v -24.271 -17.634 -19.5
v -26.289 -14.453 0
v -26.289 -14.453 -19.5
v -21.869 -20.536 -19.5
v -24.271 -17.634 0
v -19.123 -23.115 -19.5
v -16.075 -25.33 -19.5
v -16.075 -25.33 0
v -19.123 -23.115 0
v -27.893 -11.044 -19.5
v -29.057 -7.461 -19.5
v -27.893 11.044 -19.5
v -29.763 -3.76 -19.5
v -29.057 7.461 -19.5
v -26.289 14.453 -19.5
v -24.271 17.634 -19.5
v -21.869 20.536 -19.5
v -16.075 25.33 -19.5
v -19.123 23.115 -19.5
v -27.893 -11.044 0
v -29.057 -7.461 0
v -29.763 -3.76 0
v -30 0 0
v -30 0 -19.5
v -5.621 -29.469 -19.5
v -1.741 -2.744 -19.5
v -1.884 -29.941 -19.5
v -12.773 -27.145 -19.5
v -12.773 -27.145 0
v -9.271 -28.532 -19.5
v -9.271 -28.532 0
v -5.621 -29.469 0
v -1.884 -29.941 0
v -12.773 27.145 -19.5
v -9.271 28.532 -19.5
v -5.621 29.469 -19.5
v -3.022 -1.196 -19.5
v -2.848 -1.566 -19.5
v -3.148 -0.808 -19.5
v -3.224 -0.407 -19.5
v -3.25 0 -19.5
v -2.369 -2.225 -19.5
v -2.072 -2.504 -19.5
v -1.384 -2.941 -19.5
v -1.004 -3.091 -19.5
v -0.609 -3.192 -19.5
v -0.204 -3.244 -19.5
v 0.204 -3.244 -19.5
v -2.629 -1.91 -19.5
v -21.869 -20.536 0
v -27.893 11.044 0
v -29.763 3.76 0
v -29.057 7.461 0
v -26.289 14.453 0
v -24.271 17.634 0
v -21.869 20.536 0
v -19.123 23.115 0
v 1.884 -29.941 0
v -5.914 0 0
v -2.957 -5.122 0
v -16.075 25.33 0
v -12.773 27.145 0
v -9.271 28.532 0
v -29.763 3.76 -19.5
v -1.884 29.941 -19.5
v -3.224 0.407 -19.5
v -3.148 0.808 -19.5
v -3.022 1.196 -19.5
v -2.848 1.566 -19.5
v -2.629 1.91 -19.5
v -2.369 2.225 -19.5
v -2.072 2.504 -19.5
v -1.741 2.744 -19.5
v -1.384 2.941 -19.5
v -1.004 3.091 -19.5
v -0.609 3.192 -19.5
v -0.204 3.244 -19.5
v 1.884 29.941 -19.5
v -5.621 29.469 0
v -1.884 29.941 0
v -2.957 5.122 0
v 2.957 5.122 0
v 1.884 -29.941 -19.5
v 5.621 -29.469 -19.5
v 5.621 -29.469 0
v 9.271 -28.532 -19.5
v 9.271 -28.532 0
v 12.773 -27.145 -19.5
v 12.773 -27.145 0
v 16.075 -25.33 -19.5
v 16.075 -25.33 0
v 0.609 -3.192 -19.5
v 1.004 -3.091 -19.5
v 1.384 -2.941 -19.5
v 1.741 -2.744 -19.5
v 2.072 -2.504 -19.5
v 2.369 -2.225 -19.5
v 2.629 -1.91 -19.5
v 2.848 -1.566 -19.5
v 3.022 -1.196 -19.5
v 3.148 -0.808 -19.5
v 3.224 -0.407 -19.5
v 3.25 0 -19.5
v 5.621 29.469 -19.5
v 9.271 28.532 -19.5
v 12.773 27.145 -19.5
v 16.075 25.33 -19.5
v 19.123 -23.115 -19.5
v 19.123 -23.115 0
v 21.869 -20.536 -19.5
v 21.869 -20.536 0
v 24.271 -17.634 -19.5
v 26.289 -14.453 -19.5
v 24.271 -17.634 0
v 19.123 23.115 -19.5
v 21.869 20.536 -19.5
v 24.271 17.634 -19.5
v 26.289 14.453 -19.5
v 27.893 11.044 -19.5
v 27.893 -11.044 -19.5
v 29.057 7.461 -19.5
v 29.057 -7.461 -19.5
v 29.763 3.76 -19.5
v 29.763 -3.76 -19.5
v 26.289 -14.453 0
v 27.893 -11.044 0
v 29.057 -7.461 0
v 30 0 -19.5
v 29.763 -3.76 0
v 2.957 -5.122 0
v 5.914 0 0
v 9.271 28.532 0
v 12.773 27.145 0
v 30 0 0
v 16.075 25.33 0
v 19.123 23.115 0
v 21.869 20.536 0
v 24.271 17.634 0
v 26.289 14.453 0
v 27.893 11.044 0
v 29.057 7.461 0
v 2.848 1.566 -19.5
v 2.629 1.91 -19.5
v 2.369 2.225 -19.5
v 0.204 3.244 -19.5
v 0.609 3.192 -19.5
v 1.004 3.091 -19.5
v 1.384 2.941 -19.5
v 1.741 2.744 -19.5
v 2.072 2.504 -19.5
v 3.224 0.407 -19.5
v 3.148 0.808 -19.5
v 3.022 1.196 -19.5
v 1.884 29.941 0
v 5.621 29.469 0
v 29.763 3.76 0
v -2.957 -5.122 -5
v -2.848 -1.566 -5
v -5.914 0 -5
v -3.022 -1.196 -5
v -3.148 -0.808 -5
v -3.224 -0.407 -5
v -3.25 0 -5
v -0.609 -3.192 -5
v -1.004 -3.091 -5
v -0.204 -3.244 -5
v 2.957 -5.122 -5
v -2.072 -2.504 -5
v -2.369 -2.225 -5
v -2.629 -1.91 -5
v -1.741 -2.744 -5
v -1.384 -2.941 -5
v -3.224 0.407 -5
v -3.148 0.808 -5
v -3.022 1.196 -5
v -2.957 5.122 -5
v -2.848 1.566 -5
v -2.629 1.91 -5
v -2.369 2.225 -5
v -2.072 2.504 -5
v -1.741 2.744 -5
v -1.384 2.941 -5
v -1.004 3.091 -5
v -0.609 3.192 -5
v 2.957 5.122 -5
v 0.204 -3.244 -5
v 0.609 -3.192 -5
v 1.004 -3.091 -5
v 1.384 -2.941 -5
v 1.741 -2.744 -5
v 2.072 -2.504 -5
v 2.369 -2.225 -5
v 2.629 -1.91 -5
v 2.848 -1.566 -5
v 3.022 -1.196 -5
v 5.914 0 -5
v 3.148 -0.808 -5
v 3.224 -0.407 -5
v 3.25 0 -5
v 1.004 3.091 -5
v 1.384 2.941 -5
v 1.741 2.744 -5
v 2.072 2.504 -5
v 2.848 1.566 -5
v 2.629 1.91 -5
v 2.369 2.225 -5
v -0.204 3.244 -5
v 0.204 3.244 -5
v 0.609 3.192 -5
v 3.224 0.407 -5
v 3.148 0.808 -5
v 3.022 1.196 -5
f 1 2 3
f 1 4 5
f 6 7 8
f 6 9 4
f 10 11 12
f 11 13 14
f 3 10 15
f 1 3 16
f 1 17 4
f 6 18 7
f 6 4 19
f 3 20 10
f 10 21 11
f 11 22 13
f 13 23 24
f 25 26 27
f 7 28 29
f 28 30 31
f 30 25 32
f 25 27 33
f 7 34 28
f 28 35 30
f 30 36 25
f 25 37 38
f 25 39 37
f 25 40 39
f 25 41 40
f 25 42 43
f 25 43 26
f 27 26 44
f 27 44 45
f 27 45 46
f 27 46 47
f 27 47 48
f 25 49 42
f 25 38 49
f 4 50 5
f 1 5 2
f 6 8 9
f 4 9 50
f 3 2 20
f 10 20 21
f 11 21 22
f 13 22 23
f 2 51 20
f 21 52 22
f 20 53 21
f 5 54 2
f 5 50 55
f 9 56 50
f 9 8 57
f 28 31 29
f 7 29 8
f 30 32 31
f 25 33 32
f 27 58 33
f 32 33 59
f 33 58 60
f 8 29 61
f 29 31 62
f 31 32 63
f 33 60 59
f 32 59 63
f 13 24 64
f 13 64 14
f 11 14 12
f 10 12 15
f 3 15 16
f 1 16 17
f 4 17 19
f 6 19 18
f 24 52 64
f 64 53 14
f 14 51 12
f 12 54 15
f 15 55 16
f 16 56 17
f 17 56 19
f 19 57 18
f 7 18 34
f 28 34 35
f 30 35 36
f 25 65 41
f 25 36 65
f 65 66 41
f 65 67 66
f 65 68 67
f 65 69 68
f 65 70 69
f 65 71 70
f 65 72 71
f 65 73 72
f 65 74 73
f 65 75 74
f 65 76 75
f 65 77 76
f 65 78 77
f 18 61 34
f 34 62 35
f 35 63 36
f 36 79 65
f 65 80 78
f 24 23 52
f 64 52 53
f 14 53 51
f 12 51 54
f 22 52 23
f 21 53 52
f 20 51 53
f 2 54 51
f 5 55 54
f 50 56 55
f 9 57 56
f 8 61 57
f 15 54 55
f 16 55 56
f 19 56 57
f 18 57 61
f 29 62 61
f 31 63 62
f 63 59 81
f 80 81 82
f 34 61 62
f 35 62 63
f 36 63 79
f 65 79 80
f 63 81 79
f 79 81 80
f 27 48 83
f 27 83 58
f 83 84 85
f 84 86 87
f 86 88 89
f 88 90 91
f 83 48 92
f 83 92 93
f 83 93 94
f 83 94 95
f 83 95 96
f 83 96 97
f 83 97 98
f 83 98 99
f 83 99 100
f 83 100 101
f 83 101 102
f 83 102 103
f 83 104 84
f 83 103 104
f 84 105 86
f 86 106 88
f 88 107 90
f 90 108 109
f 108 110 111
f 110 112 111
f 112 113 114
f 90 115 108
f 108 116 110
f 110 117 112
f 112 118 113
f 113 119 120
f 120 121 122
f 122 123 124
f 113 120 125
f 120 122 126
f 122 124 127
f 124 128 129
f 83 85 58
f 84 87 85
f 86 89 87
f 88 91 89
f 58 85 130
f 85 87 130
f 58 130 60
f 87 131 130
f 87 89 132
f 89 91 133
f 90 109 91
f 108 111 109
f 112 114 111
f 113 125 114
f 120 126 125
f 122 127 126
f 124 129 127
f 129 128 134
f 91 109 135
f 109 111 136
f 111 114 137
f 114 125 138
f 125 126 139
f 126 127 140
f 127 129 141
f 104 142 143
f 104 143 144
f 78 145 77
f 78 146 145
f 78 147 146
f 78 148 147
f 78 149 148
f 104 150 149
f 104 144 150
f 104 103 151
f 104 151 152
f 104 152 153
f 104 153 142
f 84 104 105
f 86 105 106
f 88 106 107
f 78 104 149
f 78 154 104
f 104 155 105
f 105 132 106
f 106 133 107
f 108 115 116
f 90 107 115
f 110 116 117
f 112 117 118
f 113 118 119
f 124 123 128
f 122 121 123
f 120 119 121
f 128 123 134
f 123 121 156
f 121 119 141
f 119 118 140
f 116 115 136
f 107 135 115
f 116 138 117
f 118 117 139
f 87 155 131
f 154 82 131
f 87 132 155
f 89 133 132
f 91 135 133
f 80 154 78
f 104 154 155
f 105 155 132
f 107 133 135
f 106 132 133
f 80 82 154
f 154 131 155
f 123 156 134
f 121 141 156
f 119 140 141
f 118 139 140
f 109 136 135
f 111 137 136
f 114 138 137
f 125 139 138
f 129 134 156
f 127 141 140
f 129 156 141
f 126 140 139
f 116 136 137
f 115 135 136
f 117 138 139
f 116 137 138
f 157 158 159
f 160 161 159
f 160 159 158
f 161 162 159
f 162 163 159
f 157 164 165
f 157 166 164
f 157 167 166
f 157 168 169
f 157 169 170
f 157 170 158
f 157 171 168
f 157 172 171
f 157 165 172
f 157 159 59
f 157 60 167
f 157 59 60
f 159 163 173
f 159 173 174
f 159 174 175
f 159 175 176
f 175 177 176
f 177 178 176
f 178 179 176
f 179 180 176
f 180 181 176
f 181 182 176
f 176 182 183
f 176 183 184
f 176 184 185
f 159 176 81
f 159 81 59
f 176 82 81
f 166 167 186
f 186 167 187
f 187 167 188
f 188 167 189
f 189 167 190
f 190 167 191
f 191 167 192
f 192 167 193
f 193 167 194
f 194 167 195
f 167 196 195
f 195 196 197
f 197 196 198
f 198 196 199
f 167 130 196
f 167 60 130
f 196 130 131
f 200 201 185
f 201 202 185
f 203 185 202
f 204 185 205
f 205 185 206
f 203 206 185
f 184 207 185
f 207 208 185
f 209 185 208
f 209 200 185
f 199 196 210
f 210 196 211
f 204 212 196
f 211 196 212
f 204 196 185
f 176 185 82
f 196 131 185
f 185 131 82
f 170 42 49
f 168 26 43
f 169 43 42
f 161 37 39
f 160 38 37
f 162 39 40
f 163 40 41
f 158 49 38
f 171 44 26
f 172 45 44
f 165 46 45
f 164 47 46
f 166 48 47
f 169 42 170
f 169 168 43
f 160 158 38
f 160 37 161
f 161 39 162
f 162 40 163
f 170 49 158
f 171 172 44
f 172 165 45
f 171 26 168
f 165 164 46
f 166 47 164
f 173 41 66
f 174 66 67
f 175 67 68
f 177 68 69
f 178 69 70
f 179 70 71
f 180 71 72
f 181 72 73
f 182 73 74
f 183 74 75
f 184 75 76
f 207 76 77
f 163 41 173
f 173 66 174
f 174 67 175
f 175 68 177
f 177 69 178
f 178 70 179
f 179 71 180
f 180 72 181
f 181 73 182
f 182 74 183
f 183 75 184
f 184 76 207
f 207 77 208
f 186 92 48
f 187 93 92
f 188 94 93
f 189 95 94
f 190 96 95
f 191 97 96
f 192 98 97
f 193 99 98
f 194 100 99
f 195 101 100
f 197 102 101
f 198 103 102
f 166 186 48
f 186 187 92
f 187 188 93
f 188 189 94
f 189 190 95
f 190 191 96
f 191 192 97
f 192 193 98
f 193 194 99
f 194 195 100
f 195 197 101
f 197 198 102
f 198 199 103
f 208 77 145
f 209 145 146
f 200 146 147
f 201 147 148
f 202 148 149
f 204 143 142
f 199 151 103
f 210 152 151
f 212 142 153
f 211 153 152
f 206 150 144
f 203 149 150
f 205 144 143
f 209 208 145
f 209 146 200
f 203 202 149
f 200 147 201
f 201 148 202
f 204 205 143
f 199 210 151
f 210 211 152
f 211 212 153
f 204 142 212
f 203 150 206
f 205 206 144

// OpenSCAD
$fn = 50;


difference() {
	union() {
		translate(v = [0, 0, -19.5000000000]) {
			cylinder(h = 19.5000000000, r = 30.0000000000);
		}
		#translate(v = [0, 0, -21.0000000000]) {
			cylinder(h = 21, r = 2.8750000000);
		}
	}
	union() {
		translate(v = [0, 0, 0]) {
			rotate(a = [0, 0, 0]) {
				difference() {
					union() {
						translate(v = [0, 0, -5]) {
							linear_extrude(height = 5) {
								polygon(points = [[5.9142500000, 0.0000000000], [2.9571250000, 5.1218907443], [-2.9571250000, 5.1218907443], [-5.9142500000, 0.0000000000], [-2.9571250000, -5.1218907443], [2.9571250000, -5.1218907443]]);
							}
						}
					}
					union();
				}
			}
		}
		#translate(v = [0, 0, -100.0000000000]) {
			cylinder(h = 200, r = 3.2500000000);
		}
	}
}
